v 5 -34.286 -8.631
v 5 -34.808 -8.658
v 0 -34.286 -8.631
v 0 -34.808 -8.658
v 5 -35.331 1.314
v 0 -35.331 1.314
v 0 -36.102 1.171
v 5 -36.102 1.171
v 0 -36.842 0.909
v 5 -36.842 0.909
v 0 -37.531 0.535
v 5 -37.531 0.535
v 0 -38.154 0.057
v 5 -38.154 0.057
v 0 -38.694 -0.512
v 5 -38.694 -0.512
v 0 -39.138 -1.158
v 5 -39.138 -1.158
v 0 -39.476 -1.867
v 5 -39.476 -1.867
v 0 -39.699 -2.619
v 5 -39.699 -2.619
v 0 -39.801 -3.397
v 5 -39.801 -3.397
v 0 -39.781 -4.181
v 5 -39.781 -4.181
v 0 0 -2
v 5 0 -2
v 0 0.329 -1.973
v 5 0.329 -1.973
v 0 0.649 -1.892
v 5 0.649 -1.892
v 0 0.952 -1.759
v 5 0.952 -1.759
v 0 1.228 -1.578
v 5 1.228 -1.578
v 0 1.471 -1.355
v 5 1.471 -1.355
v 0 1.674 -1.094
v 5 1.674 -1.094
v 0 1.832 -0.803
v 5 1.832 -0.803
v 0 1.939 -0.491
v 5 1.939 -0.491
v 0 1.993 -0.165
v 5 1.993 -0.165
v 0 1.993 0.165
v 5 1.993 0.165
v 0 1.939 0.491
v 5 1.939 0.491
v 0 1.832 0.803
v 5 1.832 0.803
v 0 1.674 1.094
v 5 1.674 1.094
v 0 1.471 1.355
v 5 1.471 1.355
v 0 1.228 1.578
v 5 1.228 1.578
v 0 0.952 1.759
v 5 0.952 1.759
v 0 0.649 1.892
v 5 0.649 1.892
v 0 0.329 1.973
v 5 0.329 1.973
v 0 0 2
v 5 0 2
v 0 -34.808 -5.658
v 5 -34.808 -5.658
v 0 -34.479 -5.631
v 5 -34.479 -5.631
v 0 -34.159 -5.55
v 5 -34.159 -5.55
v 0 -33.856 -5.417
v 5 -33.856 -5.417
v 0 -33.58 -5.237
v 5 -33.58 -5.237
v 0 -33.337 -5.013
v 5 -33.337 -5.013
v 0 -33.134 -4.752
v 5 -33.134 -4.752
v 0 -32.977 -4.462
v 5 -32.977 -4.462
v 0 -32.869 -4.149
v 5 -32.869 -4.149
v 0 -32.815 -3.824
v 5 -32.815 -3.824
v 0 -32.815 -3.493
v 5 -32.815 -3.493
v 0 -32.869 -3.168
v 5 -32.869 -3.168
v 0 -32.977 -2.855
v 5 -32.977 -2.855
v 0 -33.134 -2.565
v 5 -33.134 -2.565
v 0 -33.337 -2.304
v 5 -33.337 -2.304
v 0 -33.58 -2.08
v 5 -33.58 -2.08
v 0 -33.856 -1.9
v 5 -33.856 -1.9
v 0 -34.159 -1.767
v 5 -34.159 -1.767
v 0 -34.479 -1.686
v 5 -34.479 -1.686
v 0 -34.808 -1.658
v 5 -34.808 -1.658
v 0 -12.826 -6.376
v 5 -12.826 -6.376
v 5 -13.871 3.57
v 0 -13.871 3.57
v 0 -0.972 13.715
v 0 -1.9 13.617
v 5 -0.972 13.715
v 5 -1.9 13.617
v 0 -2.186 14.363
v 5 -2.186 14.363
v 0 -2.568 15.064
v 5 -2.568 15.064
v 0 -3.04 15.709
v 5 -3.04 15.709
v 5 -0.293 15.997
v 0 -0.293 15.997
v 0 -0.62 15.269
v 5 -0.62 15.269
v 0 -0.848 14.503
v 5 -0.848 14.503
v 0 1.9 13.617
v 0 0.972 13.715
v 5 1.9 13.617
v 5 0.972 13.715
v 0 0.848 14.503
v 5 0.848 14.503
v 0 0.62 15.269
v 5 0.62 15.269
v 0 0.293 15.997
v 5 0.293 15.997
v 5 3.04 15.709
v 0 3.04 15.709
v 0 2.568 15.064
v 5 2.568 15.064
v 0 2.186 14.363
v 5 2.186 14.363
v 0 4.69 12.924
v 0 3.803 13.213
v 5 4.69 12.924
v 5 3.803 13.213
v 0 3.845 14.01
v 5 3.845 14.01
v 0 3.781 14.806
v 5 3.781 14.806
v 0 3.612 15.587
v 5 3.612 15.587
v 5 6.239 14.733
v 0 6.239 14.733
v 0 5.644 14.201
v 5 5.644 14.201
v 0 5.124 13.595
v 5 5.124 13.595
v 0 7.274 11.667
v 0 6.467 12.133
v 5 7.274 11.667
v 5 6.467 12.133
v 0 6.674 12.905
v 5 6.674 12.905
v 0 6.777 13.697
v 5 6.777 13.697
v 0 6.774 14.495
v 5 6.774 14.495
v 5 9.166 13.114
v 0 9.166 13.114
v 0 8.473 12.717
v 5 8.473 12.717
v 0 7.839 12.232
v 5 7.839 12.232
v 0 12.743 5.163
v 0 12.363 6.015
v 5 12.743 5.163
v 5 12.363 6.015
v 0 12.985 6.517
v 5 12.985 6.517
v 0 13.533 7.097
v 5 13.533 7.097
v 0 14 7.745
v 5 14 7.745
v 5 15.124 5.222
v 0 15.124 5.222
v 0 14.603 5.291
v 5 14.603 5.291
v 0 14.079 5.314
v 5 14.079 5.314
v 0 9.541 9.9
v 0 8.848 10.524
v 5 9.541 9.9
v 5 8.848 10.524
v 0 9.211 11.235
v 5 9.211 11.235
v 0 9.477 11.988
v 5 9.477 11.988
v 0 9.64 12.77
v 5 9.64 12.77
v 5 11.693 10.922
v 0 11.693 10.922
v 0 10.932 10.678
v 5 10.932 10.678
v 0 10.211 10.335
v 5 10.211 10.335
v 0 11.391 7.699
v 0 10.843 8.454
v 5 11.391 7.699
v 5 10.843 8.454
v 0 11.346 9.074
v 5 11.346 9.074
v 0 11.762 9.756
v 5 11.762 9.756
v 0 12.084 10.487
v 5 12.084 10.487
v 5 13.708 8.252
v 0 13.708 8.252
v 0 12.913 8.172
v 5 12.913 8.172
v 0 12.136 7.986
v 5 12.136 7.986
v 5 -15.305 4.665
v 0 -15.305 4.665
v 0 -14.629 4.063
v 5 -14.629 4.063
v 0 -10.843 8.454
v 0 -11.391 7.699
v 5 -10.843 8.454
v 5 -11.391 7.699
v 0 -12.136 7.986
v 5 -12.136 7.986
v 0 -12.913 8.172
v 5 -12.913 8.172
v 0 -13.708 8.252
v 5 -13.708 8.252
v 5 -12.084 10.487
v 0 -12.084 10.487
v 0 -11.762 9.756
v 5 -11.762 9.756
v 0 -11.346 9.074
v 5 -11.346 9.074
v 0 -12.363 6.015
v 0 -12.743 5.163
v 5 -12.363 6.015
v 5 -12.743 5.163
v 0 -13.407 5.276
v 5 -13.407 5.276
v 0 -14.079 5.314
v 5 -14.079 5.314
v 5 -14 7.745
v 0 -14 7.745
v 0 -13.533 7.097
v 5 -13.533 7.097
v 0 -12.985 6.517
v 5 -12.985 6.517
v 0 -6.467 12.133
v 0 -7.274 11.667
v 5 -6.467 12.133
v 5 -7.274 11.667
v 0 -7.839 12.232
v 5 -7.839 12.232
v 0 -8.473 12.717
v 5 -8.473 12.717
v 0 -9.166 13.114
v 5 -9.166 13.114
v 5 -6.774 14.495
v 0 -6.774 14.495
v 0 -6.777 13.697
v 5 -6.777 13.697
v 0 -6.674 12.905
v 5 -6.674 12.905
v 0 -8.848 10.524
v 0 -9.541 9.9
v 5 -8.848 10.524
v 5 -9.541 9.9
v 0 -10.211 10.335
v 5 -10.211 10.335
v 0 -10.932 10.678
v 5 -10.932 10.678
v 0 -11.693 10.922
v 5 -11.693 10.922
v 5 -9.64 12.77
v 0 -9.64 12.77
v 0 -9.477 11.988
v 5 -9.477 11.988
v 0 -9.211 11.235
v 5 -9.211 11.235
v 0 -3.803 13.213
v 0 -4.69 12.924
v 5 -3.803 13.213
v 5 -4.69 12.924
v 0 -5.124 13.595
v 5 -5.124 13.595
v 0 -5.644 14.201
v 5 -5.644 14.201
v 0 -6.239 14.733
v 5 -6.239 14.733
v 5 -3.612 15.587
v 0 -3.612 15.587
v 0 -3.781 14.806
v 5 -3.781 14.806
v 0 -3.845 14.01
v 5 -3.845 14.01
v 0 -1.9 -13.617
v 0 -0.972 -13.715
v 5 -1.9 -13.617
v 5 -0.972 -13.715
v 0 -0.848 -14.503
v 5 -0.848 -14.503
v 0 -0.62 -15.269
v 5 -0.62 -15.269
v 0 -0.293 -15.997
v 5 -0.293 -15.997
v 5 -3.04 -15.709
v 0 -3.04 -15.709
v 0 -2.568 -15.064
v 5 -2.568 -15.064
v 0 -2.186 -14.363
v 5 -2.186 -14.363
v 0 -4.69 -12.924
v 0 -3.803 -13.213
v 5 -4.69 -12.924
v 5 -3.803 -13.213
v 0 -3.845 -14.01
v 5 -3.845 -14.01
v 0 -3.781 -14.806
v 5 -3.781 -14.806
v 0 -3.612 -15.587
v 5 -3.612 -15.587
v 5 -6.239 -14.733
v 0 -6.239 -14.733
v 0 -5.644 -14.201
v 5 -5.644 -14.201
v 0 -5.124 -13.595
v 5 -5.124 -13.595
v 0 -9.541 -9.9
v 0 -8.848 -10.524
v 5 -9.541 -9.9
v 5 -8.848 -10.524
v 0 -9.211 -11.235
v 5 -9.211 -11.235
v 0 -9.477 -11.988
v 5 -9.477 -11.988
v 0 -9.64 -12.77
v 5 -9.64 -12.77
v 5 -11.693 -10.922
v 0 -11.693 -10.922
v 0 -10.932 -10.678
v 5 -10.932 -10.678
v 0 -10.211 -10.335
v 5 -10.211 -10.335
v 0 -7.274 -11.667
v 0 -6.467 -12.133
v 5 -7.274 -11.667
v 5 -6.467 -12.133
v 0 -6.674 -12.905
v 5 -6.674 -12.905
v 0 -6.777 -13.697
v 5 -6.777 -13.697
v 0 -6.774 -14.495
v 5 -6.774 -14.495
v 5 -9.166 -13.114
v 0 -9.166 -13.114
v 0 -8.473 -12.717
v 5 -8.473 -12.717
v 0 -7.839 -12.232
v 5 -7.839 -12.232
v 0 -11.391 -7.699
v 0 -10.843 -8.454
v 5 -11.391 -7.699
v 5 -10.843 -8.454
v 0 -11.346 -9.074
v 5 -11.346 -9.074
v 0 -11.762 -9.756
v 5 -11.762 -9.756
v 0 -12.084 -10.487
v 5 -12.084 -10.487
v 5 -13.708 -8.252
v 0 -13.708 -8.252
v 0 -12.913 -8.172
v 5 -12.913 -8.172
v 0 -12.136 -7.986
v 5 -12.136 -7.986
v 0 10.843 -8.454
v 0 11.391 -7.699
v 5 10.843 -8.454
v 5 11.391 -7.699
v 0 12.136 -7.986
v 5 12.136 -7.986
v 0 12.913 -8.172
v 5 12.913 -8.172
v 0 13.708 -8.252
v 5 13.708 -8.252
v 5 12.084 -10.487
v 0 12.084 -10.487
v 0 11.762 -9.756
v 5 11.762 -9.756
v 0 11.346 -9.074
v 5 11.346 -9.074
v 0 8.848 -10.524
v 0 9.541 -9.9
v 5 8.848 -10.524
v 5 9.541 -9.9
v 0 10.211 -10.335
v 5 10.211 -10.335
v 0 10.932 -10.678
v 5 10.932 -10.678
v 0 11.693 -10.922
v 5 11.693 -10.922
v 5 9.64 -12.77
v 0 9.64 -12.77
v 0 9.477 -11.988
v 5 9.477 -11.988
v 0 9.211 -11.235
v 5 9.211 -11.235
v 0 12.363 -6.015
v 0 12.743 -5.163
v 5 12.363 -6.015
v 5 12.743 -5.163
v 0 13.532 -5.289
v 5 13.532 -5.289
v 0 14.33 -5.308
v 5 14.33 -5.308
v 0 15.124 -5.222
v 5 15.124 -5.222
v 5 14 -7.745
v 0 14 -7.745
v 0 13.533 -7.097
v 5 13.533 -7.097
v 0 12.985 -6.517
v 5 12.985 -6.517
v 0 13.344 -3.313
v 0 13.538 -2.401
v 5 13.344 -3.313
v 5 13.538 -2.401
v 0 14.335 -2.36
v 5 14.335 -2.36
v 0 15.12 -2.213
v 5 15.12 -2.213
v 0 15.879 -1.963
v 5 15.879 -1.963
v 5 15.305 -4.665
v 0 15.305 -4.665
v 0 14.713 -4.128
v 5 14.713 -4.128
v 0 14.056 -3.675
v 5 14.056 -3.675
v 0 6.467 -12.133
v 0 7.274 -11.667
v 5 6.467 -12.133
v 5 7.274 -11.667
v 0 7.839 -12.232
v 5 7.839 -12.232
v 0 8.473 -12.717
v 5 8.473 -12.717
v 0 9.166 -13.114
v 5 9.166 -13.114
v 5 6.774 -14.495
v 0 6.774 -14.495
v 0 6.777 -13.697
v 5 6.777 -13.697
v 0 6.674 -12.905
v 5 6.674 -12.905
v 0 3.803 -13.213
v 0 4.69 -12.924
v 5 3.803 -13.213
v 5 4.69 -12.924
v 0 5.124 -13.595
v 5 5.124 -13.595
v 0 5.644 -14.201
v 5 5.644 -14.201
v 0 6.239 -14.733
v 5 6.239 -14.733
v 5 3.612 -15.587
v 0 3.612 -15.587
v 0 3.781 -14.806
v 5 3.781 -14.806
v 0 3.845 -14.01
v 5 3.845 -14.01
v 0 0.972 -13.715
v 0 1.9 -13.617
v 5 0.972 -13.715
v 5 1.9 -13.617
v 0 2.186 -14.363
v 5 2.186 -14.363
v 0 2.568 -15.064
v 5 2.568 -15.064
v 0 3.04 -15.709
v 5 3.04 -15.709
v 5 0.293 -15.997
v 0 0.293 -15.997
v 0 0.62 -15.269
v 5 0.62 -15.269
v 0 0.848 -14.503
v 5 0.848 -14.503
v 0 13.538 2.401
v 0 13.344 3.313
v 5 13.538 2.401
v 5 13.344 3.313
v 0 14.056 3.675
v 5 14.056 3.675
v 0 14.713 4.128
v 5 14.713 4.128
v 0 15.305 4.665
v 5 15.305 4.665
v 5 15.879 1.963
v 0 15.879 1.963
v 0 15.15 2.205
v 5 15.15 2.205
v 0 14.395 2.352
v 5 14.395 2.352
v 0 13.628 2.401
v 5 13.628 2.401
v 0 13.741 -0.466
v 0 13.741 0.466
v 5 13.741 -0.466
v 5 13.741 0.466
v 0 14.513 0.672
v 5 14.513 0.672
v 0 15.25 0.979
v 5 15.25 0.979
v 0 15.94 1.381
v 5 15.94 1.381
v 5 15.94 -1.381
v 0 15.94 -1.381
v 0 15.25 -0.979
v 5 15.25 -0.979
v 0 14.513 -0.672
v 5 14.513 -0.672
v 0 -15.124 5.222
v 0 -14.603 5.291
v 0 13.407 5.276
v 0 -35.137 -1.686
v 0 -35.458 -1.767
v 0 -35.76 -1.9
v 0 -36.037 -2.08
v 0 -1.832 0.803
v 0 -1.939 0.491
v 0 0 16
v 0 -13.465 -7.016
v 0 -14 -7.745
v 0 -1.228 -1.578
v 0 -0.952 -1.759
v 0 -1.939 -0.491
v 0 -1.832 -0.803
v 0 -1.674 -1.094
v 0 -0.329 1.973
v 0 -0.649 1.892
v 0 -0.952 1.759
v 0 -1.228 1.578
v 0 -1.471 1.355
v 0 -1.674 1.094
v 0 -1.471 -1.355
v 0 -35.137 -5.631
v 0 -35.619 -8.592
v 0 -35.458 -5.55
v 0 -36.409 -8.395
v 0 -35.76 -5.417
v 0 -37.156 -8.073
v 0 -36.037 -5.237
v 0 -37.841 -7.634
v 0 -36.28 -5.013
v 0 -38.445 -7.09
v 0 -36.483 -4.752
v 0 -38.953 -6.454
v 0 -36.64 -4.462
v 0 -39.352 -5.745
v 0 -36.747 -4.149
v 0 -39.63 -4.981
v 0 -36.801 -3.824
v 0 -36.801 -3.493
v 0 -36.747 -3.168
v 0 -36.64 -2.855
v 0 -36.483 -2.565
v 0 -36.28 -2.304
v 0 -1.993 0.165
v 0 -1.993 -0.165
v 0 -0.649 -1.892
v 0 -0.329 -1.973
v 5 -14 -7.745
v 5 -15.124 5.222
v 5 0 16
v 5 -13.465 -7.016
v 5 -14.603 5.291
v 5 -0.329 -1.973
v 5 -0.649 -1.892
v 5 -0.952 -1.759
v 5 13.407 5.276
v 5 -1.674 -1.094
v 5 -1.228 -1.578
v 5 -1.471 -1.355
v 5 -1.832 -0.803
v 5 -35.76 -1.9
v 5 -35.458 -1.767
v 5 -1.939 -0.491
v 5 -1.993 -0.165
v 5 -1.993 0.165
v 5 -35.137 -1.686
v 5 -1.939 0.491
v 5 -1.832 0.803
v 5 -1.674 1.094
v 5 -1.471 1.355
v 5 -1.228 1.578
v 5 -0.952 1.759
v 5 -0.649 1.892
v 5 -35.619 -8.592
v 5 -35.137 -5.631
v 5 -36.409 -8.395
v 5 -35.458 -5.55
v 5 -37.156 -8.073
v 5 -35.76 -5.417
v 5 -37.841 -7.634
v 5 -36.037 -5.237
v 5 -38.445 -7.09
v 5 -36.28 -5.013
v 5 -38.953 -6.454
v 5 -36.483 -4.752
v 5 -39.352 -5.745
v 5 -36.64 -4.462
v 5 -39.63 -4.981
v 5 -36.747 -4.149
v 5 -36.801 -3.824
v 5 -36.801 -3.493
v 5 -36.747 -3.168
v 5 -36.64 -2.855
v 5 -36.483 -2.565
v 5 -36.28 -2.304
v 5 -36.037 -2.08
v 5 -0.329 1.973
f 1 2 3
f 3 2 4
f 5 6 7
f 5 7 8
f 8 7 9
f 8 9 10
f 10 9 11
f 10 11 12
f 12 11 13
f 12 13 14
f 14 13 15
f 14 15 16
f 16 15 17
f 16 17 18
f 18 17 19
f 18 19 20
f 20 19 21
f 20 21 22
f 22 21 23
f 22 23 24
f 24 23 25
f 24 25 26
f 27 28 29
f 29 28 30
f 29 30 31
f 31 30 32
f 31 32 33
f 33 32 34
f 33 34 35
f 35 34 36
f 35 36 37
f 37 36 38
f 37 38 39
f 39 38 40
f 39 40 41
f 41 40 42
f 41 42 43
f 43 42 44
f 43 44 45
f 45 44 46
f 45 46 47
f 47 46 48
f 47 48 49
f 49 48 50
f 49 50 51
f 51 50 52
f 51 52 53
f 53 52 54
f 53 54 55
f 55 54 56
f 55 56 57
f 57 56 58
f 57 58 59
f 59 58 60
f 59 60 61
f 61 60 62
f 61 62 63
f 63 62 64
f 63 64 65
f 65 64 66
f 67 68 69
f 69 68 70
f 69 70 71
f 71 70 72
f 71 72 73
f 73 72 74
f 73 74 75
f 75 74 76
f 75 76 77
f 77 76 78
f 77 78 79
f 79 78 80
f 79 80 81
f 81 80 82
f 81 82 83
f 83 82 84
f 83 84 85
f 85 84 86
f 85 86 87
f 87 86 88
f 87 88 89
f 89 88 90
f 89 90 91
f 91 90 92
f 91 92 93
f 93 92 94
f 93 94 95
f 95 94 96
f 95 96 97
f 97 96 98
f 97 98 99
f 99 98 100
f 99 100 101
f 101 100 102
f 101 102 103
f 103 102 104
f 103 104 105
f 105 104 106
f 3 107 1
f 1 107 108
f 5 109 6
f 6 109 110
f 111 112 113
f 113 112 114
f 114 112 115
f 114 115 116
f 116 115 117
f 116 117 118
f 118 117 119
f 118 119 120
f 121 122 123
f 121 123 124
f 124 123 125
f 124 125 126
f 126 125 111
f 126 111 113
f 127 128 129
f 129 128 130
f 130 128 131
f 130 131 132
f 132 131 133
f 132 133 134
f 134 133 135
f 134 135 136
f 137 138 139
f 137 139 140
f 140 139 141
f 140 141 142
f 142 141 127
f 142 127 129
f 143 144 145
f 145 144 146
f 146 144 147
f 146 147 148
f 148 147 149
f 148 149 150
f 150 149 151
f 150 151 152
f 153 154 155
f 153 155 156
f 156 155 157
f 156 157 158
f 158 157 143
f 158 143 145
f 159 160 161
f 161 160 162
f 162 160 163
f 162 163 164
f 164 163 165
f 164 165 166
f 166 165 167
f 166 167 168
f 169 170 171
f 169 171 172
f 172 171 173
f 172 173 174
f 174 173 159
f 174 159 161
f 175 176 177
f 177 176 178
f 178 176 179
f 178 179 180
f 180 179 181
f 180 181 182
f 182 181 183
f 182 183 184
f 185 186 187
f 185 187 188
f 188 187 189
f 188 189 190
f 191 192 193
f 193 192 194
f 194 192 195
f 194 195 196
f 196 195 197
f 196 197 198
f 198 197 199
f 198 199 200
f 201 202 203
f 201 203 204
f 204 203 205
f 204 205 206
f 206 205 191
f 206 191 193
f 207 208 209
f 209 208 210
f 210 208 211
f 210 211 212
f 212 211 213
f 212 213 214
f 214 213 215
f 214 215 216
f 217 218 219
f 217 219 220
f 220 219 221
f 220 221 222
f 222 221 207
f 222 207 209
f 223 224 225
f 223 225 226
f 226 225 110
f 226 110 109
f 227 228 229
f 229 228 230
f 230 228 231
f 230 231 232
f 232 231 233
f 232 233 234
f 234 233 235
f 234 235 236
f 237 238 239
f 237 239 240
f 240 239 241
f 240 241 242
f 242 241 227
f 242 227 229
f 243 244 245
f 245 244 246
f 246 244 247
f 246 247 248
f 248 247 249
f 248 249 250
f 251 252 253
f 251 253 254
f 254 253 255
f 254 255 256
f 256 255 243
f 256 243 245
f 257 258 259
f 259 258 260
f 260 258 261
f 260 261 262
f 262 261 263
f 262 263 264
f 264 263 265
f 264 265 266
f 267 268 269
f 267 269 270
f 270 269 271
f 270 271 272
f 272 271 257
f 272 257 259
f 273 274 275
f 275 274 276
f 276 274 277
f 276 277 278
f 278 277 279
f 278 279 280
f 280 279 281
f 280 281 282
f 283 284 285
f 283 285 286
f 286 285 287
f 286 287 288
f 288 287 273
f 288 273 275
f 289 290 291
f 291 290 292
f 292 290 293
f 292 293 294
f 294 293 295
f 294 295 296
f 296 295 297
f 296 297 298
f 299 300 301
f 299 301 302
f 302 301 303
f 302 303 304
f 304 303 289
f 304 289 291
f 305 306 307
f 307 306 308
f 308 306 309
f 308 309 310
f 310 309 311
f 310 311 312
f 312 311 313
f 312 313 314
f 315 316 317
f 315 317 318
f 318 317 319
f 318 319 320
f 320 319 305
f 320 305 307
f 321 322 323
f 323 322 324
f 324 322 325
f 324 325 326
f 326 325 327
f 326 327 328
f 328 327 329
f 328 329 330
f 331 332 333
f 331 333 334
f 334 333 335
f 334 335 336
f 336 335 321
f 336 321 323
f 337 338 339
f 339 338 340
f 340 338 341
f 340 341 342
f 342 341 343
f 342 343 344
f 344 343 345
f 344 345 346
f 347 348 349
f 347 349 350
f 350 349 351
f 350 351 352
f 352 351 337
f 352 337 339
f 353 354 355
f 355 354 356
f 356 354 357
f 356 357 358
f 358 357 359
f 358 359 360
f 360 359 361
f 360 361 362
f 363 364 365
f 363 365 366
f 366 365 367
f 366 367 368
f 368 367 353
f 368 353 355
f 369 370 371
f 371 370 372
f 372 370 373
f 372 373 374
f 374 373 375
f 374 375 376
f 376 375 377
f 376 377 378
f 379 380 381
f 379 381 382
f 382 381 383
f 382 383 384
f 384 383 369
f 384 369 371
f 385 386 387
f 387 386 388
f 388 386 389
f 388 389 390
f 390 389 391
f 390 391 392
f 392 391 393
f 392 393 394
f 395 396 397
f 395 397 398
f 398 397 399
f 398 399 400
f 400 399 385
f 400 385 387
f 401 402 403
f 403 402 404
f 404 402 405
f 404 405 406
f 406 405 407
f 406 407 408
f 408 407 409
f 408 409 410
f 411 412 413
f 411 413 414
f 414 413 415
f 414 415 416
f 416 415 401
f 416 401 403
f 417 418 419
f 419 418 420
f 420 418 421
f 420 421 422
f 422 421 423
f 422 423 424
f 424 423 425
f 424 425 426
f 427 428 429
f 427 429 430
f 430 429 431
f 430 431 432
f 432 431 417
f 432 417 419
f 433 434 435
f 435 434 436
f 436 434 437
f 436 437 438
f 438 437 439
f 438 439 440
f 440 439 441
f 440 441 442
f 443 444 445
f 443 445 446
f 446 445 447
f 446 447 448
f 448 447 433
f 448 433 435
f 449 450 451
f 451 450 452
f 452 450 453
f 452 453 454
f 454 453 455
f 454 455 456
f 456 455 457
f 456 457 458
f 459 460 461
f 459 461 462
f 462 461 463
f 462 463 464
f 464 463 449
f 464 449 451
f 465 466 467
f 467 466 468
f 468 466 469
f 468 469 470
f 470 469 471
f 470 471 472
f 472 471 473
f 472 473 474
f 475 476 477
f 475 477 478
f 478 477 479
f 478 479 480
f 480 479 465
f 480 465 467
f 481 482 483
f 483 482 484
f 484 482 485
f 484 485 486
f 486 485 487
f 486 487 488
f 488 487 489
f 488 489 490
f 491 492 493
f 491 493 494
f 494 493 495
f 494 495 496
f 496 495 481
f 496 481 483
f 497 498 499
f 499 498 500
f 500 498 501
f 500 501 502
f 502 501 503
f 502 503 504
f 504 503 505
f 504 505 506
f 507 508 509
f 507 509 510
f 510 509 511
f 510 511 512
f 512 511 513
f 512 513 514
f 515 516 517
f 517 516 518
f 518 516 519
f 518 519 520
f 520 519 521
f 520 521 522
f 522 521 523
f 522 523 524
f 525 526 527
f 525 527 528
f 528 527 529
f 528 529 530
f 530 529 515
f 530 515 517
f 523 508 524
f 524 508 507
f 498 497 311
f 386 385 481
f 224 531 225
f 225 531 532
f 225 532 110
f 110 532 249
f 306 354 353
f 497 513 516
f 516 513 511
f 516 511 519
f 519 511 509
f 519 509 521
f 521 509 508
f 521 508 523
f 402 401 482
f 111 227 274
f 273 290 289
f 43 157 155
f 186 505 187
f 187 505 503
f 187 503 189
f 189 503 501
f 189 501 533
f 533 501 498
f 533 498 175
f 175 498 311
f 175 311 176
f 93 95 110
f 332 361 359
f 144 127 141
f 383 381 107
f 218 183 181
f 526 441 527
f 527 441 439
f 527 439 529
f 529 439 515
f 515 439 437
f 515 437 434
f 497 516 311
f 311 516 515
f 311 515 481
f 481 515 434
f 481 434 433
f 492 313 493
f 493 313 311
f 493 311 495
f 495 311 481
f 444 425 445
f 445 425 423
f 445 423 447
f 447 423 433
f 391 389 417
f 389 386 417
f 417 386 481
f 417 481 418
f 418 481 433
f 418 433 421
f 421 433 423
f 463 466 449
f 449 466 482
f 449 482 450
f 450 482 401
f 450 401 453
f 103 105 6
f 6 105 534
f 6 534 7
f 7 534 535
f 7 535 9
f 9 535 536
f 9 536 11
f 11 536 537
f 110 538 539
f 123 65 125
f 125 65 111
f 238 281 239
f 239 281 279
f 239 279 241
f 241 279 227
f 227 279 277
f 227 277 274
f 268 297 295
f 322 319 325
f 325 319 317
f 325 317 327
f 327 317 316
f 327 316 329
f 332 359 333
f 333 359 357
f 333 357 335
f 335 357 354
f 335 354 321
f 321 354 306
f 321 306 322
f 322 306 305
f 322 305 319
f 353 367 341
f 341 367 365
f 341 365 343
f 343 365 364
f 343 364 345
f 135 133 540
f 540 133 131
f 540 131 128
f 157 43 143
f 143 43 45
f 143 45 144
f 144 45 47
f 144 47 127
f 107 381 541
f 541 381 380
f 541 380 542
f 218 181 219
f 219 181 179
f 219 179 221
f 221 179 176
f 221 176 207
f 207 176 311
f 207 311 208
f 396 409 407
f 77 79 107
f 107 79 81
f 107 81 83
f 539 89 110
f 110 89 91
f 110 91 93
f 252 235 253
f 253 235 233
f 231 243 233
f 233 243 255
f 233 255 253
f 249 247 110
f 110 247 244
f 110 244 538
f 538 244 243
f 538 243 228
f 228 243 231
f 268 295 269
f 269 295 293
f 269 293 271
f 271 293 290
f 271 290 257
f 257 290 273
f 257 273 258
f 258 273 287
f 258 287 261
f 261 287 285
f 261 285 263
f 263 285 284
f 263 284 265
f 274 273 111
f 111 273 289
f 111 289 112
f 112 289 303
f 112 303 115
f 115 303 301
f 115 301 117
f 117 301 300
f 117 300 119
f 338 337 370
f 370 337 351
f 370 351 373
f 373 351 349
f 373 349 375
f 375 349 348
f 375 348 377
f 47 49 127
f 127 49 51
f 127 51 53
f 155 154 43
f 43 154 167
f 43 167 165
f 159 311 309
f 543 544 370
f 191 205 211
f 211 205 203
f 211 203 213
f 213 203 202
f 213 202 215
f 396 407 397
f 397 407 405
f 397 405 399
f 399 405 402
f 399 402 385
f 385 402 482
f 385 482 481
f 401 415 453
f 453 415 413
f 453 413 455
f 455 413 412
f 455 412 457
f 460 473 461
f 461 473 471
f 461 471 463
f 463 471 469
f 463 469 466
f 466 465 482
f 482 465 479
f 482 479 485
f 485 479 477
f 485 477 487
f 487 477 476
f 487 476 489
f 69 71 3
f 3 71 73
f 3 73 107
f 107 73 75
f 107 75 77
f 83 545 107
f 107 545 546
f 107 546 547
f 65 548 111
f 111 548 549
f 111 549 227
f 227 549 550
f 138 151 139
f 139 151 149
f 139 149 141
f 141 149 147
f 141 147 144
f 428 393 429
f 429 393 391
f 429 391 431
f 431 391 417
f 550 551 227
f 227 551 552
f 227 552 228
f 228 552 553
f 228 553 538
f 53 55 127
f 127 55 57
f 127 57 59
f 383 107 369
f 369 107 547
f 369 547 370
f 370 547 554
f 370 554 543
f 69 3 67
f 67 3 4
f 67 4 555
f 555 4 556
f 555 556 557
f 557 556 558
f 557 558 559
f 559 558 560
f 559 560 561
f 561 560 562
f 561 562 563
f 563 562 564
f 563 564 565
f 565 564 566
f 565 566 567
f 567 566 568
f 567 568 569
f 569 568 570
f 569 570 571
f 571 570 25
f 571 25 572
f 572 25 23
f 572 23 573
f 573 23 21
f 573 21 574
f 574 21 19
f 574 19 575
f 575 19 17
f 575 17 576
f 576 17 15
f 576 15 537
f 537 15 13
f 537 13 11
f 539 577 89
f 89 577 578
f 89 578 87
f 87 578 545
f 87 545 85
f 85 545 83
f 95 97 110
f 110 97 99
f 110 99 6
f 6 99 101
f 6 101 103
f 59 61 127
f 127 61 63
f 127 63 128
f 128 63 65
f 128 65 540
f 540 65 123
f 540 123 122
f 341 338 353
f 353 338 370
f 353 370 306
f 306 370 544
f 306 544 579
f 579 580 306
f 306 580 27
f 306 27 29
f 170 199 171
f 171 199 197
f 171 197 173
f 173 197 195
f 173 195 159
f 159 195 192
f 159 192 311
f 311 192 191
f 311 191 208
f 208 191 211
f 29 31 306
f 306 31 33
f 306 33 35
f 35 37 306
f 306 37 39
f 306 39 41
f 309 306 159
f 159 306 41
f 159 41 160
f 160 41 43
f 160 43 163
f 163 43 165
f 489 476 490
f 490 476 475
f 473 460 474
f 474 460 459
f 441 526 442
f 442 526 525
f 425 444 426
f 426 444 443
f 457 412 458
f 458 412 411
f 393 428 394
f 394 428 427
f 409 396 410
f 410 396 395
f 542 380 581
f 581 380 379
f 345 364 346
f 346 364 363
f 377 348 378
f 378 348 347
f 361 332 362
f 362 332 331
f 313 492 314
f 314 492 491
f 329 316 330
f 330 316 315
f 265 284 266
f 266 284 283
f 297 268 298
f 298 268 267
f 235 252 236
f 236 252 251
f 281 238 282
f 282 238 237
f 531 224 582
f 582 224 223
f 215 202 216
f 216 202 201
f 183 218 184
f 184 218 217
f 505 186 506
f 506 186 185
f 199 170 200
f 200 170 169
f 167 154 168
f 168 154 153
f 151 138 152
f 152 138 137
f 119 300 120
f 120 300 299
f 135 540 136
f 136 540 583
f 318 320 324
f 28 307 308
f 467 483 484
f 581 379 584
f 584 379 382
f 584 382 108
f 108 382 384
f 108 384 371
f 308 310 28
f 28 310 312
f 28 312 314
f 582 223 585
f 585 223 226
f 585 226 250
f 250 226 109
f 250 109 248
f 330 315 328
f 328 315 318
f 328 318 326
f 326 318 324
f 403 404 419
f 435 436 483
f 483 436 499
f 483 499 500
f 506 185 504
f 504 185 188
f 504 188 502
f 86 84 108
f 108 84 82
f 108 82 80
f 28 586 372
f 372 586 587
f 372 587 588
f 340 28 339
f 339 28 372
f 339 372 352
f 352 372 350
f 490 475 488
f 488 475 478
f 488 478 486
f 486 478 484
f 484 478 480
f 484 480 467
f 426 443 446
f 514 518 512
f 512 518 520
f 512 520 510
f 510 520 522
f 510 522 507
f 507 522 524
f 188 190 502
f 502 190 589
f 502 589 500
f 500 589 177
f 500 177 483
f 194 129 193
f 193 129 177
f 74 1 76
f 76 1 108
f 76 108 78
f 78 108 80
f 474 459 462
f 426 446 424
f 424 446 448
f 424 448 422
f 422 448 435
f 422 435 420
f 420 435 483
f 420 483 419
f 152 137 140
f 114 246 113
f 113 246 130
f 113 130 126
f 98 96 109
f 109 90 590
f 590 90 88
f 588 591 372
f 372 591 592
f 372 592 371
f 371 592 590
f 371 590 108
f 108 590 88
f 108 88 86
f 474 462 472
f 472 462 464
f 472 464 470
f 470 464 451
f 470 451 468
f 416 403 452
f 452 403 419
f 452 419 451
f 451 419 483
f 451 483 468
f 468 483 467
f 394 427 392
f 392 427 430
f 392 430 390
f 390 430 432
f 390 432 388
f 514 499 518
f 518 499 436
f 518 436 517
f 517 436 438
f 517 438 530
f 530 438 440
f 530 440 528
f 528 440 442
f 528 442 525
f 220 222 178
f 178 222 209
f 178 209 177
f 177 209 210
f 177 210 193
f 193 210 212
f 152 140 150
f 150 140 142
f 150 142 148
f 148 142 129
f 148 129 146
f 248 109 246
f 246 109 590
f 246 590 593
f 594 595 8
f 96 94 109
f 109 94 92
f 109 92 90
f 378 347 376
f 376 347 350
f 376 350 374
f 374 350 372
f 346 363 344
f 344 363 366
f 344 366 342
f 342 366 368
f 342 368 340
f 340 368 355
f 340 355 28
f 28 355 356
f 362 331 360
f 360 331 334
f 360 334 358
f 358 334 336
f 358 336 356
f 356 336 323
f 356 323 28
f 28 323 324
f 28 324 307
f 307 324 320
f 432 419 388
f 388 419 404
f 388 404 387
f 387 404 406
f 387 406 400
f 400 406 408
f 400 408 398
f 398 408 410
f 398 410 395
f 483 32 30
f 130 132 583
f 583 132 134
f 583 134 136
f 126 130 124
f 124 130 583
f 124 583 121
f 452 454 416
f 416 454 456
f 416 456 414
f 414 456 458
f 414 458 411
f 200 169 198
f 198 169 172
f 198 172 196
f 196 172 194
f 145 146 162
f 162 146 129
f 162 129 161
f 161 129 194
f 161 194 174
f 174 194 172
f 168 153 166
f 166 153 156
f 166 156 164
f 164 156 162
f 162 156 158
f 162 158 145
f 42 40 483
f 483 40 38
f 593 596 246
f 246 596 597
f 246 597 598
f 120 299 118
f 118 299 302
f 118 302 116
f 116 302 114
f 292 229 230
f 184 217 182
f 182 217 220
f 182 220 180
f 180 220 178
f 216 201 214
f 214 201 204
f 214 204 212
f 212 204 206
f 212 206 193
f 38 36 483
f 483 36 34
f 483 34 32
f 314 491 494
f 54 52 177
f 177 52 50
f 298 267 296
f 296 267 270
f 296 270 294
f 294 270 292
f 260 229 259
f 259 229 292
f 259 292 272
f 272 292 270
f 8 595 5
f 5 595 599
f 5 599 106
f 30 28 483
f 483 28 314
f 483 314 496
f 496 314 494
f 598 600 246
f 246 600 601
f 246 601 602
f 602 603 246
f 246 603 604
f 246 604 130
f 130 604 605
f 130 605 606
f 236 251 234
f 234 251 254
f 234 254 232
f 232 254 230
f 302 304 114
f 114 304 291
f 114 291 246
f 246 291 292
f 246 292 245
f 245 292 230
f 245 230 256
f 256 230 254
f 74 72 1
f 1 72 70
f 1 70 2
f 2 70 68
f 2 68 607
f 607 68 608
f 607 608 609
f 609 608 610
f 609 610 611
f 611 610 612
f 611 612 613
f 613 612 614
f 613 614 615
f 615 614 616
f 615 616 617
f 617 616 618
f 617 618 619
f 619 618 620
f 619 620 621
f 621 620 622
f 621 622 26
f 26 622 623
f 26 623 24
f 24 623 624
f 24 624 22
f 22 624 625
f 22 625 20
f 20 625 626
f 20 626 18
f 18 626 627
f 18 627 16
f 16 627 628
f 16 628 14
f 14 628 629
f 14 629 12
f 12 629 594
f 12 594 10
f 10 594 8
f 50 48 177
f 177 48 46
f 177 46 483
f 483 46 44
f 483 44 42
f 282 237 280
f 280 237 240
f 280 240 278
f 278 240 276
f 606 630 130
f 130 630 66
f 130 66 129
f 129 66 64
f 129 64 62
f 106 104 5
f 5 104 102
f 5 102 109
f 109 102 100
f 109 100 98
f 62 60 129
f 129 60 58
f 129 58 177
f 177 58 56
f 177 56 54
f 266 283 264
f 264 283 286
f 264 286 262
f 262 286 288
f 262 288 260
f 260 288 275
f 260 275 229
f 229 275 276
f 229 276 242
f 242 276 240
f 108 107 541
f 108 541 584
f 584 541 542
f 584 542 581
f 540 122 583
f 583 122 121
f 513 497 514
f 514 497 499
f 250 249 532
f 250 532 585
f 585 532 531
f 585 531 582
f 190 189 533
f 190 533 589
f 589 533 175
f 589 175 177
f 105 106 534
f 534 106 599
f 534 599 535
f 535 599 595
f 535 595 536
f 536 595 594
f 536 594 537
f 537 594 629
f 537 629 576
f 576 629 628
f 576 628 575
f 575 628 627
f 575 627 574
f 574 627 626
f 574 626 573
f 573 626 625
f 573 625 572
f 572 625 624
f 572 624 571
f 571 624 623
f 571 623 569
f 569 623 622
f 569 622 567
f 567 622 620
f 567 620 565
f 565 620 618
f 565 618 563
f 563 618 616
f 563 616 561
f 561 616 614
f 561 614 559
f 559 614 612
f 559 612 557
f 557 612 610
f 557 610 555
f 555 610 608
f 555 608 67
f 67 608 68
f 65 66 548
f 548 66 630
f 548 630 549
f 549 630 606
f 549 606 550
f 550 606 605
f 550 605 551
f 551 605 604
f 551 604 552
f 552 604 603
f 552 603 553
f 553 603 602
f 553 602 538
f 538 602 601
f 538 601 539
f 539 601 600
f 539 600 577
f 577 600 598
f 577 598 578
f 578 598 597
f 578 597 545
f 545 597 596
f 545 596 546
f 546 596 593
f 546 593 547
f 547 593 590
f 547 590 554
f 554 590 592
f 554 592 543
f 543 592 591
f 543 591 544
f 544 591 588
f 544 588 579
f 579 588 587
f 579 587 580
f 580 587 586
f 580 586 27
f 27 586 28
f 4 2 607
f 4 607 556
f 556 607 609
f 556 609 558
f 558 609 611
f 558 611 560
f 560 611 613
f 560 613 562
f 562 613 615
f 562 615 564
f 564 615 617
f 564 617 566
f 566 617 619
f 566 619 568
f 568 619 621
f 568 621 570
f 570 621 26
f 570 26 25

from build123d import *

# Parameters (mm, degrees)
BASPROSKE_W         = 5
BASPROSKE_H         = 16
TOOTHCUT_DEPTH      = 24.173260453
TEETHCUTS_COUNT     = 30
TEETHCUTS_ANGLE     = 348
BORSKE_R            = 0.4
BORE_DEPTH          = 50.0000508
SKETCH1_R           = 2
BOSS_EXTRUDE1_DEPTH = 5
SKETCH2_R           = 2
CUT_EXTRUDE1_DEPTH  = 44.650585033
FILLET1_R           = 5


with BuildPart() as part:
    # BasProSke → Base-Revolve (revolve)
    with BuildSketch(Plane(origin=(0, 0, 0), x_dir=(1, 0, 0), z_dir=(0, 1, 0)), mode=Mode.PRIVATE) as base_revolve_sk:
        with Locations((2.5, 8)):
            Rectangle(BASPROSKE_W, BASPROSKE_H)
    revolve(base_revolve_sk.sketch.rotate(Axis((-10, 0, 0), (1, 0, 0)), 180), axis=Axis((-10, 0, 0), (1, 0, 0)))

    # TooCutSke → ToothCut (cut, through all)
    with BuildSketch(Plane(origin=(0, 0, 0), x_dir=(0, 0, -1), z_dir=(1, 0, 0))):
        with BuildLine():
            ThreePointArc((0.466400716, 13.741086979), (0, 13.749), (-0.466400716, 13.741086979))
            ThreePointArc((-0.466400716, 13.741086979), (-0.819142092, 14.899954875), (-1.3974676, 15.964351834))
            ThreePointArc((-1.3974676, 15.964351834), (0, 16.0254), (1.3974676, 15.964351834))
            ThreePointArc((1.3974676, 15.964351834), (0.819142092, 14.899954875), (0.466400716, 13.741086979))
        make_face()
    toothcut = extrude(amount=TOOTHCUT_DEPTH, mode=Mode.SUBTRACT)

    # TeethCuts: ToothCut ×30 about axis
    teethcuts_axis = Axis((-10, 0, 0), (1, 0, 0))
    for i in range(1, TEETHCUTS_COUNT):
        add(toothcut.rotate(teethcuts_axis, i * TEETHCUTS_ANGLE / (TEETHCUTS_COUNT - 1)), mode=Mode.SUBTRACT)

    # BorSke → Bore (cut, symmetric)
    with BuildSketch(Plane(origin=(0, 0, 0), x_dir=(0, 0, -1), z_dir=(1, 0, 0))):
        with Locations(Location((0, 0, 0), (0, 0, 180))):
            Circle(BORSKE_R)
    extrude(amount=BORE_DEPTH, both=True, mode=Mode.SUBTRACT)

    # Sketch1 → Boss-Extrude1 (add)
    with BuildSketch(Plane(origin=(5, 0, 0), x_dir=(0, 0, -1), z_dir=(1, 0, 0))):
        Polygon((4.972609477, 0.522642316), (9.153748008, -39.258233498), (-0.791470946, -40.303518131), (-4.972609477, -0.522642316), align=None)
        with Locations((3.658496214, -34.808266338)):
            Circle(SKETCH1_R, mode=Mode.SUBTRACT)
    extrude(amount=-BOSS_EXTRUDE1_DEPTH)

    # Sketch2 → Cut-Extrude1 (cut, through all)
    with BuildSketch(Plane(origin=(5, 0, 0), x_dir=(0, 0, -1), z_dir=(1, 0, 0))):
        Circle(SKETCH2_R)
    extrude(amount=-CUT_EXTRUDE1_DEPTH, mode=Mode.SUBTRACT)

    # Fillet1
    fillet1_edges = [part.edges().sort_by_distance(p)[0] for p in [
        (2.5, -39.258233498, -9.153748008),
        (2.5, -40.303518131, 0.791470946),
    ]]
    fillet(fillet1_edges, radius=FILLET1_R - 0.0001)  # a hair under: the kernel refuses the full size


solid = part.part
